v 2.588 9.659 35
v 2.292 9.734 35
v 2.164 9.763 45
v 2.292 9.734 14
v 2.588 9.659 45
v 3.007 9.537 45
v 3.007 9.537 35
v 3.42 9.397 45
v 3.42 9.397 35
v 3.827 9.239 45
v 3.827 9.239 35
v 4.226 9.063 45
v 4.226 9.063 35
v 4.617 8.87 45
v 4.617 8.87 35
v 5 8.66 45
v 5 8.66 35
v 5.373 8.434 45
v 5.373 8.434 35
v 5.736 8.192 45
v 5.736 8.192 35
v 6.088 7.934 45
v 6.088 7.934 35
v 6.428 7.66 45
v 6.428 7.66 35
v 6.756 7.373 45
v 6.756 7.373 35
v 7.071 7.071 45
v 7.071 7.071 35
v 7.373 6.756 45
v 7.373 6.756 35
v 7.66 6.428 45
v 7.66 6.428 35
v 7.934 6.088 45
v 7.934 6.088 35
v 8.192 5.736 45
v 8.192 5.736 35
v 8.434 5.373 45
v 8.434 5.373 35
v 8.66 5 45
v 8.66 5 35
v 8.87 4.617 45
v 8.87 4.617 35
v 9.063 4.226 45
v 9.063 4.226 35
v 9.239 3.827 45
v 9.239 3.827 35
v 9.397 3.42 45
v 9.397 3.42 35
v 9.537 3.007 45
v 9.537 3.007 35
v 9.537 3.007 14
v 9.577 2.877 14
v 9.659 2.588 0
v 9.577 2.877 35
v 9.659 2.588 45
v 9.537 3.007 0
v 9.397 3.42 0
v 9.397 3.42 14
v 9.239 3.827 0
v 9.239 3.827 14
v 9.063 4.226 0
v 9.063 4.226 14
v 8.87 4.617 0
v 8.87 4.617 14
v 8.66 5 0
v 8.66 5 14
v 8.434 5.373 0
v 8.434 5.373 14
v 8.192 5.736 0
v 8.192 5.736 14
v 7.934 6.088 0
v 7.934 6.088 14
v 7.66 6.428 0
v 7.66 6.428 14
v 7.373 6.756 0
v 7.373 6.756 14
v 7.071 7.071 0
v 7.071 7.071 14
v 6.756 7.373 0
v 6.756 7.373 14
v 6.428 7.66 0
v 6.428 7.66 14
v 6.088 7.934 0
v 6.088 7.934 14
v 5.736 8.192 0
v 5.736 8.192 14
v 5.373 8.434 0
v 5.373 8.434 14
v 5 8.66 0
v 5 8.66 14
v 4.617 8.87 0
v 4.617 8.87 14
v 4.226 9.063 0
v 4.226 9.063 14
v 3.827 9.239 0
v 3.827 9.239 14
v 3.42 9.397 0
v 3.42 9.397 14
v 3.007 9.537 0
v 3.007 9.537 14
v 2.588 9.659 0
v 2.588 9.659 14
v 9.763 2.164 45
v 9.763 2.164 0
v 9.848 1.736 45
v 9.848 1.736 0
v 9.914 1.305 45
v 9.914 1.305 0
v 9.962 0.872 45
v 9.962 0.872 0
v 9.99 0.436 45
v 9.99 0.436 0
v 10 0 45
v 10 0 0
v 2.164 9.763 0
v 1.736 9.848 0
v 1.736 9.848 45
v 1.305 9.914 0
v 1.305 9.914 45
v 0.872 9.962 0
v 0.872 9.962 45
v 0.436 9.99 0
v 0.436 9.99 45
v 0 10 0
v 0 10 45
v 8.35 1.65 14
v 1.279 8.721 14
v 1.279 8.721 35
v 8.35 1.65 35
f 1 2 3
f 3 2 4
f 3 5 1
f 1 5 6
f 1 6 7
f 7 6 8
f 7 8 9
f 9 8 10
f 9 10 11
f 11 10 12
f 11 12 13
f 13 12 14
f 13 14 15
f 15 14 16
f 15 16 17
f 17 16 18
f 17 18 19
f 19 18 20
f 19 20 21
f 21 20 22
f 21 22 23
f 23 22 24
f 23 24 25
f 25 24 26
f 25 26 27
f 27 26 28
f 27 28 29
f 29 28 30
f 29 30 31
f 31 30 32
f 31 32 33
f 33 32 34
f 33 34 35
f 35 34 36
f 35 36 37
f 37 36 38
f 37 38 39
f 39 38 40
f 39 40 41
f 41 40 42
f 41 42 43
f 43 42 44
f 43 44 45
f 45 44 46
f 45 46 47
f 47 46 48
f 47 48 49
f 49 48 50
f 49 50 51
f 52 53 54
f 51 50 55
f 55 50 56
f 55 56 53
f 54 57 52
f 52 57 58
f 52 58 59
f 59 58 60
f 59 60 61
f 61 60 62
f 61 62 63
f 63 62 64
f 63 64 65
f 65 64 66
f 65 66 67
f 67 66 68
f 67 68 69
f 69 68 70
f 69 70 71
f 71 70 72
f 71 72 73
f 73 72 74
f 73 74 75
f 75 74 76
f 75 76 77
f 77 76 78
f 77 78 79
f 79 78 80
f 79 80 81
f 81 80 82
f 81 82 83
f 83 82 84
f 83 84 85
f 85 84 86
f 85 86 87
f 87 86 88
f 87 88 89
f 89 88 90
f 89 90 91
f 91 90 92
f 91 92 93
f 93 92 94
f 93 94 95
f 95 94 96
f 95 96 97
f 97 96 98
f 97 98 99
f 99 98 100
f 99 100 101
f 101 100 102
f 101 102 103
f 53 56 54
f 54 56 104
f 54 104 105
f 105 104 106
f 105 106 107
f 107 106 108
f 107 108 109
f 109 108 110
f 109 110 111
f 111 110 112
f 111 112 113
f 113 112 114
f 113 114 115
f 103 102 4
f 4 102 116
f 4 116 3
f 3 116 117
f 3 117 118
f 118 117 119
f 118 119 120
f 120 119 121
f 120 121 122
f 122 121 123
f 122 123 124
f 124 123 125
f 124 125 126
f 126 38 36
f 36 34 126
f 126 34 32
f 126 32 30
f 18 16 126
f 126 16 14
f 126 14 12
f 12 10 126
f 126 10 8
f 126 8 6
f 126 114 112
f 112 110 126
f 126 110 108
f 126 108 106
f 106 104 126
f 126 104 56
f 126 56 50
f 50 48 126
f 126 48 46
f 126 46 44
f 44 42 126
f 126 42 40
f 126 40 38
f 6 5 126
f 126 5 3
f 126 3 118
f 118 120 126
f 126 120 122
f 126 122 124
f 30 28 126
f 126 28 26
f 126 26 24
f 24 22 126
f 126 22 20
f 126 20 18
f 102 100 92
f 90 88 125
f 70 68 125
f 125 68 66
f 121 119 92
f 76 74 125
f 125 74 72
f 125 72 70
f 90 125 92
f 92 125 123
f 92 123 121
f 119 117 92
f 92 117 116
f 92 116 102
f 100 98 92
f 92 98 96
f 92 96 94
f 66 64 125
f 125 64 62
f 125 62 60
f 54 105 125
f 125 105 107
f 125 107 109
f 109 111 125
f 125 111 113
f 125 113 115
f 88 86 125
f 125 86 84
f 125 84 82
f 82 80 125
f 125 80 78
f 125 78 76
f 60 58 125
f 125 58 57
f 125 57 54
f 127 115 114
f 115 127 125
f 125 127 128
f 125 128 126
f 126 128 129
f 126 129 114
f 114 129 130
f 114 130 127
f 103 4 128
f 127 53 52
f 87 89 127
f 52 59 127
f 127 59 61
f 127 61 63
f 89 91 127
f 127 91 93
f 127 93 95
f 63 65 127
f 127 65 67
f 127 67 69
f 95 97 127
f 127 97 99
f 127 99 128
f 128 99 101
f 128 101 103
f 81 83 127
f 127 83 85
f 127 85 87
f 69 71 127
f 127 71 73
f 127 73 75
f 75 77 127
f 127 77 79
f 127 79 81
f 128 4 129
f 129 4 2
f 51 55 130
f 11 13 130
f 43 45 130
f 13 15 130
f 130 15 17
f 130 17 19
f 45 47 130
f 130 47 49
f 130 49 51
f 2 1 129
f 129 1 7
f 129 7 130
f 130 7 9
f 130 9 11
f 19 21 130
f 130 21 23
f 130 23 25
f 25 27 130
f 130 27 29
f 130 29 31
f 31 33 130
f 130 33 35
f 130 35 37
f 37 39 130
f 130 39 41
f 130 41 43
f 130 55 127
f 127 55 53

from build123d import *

# Parameters (mm, degrees)
DODANIE_WYCI_GNI_CIE1_DEPTH = 45
WYTNIJ_WYCI_GNI_CIE1_DEPTH  = 60
SZKIC4_W                    = 21
SZKIC4_H                    = 10
WYTNIJ_WYCI_GNI_CIE2_DEPTH  = 60


with BuildPart() as part:
    # Szkic1 → Dodanie-wyciągnięcie1 (new body)
    with BuildSketch(Plane.XY):
        with BuildLine():
            Line((0, 0), (0, 10))
            ThreePointArc((0, 10), (7.071067812, 7.071067812), (10, 0))
            Line((10, 0), (0, 0))
        make_face()
    extrude(amount=DODANIE_WYCI_GNI_CIE1_DEPTH)

    # Szkic2 → Wytnij-wyciągnięcie1 (cut)
    with BuildSketch(Plane.XY.offset(45)):
        Polygon((0, 10), (10, 0), (0, 0), align=None)
    extrude(amount=-WYTNIJ_WYCI_GNI_CIE1_DEPTH, mode=Mode.SUBTRACT)

    # Szkic4 → Wytnij-wyciągnięcie2 (cut)
    with BuildSketch(Plane(origin=(5, 5, 0), x_dir=(0, 0, 1), z_dir=(-0.707106781, -0.707106781, 0))):
        with Locations((24.5, 0.262214186)):
            Rectangle(SZKIC4_W, SZKIC4_H)
    extrude(amount=-WYTNIJ_WYCI_GNI_CIE2_DEPTH, mode=Mode.SUBTRACT)


solid = part.part
